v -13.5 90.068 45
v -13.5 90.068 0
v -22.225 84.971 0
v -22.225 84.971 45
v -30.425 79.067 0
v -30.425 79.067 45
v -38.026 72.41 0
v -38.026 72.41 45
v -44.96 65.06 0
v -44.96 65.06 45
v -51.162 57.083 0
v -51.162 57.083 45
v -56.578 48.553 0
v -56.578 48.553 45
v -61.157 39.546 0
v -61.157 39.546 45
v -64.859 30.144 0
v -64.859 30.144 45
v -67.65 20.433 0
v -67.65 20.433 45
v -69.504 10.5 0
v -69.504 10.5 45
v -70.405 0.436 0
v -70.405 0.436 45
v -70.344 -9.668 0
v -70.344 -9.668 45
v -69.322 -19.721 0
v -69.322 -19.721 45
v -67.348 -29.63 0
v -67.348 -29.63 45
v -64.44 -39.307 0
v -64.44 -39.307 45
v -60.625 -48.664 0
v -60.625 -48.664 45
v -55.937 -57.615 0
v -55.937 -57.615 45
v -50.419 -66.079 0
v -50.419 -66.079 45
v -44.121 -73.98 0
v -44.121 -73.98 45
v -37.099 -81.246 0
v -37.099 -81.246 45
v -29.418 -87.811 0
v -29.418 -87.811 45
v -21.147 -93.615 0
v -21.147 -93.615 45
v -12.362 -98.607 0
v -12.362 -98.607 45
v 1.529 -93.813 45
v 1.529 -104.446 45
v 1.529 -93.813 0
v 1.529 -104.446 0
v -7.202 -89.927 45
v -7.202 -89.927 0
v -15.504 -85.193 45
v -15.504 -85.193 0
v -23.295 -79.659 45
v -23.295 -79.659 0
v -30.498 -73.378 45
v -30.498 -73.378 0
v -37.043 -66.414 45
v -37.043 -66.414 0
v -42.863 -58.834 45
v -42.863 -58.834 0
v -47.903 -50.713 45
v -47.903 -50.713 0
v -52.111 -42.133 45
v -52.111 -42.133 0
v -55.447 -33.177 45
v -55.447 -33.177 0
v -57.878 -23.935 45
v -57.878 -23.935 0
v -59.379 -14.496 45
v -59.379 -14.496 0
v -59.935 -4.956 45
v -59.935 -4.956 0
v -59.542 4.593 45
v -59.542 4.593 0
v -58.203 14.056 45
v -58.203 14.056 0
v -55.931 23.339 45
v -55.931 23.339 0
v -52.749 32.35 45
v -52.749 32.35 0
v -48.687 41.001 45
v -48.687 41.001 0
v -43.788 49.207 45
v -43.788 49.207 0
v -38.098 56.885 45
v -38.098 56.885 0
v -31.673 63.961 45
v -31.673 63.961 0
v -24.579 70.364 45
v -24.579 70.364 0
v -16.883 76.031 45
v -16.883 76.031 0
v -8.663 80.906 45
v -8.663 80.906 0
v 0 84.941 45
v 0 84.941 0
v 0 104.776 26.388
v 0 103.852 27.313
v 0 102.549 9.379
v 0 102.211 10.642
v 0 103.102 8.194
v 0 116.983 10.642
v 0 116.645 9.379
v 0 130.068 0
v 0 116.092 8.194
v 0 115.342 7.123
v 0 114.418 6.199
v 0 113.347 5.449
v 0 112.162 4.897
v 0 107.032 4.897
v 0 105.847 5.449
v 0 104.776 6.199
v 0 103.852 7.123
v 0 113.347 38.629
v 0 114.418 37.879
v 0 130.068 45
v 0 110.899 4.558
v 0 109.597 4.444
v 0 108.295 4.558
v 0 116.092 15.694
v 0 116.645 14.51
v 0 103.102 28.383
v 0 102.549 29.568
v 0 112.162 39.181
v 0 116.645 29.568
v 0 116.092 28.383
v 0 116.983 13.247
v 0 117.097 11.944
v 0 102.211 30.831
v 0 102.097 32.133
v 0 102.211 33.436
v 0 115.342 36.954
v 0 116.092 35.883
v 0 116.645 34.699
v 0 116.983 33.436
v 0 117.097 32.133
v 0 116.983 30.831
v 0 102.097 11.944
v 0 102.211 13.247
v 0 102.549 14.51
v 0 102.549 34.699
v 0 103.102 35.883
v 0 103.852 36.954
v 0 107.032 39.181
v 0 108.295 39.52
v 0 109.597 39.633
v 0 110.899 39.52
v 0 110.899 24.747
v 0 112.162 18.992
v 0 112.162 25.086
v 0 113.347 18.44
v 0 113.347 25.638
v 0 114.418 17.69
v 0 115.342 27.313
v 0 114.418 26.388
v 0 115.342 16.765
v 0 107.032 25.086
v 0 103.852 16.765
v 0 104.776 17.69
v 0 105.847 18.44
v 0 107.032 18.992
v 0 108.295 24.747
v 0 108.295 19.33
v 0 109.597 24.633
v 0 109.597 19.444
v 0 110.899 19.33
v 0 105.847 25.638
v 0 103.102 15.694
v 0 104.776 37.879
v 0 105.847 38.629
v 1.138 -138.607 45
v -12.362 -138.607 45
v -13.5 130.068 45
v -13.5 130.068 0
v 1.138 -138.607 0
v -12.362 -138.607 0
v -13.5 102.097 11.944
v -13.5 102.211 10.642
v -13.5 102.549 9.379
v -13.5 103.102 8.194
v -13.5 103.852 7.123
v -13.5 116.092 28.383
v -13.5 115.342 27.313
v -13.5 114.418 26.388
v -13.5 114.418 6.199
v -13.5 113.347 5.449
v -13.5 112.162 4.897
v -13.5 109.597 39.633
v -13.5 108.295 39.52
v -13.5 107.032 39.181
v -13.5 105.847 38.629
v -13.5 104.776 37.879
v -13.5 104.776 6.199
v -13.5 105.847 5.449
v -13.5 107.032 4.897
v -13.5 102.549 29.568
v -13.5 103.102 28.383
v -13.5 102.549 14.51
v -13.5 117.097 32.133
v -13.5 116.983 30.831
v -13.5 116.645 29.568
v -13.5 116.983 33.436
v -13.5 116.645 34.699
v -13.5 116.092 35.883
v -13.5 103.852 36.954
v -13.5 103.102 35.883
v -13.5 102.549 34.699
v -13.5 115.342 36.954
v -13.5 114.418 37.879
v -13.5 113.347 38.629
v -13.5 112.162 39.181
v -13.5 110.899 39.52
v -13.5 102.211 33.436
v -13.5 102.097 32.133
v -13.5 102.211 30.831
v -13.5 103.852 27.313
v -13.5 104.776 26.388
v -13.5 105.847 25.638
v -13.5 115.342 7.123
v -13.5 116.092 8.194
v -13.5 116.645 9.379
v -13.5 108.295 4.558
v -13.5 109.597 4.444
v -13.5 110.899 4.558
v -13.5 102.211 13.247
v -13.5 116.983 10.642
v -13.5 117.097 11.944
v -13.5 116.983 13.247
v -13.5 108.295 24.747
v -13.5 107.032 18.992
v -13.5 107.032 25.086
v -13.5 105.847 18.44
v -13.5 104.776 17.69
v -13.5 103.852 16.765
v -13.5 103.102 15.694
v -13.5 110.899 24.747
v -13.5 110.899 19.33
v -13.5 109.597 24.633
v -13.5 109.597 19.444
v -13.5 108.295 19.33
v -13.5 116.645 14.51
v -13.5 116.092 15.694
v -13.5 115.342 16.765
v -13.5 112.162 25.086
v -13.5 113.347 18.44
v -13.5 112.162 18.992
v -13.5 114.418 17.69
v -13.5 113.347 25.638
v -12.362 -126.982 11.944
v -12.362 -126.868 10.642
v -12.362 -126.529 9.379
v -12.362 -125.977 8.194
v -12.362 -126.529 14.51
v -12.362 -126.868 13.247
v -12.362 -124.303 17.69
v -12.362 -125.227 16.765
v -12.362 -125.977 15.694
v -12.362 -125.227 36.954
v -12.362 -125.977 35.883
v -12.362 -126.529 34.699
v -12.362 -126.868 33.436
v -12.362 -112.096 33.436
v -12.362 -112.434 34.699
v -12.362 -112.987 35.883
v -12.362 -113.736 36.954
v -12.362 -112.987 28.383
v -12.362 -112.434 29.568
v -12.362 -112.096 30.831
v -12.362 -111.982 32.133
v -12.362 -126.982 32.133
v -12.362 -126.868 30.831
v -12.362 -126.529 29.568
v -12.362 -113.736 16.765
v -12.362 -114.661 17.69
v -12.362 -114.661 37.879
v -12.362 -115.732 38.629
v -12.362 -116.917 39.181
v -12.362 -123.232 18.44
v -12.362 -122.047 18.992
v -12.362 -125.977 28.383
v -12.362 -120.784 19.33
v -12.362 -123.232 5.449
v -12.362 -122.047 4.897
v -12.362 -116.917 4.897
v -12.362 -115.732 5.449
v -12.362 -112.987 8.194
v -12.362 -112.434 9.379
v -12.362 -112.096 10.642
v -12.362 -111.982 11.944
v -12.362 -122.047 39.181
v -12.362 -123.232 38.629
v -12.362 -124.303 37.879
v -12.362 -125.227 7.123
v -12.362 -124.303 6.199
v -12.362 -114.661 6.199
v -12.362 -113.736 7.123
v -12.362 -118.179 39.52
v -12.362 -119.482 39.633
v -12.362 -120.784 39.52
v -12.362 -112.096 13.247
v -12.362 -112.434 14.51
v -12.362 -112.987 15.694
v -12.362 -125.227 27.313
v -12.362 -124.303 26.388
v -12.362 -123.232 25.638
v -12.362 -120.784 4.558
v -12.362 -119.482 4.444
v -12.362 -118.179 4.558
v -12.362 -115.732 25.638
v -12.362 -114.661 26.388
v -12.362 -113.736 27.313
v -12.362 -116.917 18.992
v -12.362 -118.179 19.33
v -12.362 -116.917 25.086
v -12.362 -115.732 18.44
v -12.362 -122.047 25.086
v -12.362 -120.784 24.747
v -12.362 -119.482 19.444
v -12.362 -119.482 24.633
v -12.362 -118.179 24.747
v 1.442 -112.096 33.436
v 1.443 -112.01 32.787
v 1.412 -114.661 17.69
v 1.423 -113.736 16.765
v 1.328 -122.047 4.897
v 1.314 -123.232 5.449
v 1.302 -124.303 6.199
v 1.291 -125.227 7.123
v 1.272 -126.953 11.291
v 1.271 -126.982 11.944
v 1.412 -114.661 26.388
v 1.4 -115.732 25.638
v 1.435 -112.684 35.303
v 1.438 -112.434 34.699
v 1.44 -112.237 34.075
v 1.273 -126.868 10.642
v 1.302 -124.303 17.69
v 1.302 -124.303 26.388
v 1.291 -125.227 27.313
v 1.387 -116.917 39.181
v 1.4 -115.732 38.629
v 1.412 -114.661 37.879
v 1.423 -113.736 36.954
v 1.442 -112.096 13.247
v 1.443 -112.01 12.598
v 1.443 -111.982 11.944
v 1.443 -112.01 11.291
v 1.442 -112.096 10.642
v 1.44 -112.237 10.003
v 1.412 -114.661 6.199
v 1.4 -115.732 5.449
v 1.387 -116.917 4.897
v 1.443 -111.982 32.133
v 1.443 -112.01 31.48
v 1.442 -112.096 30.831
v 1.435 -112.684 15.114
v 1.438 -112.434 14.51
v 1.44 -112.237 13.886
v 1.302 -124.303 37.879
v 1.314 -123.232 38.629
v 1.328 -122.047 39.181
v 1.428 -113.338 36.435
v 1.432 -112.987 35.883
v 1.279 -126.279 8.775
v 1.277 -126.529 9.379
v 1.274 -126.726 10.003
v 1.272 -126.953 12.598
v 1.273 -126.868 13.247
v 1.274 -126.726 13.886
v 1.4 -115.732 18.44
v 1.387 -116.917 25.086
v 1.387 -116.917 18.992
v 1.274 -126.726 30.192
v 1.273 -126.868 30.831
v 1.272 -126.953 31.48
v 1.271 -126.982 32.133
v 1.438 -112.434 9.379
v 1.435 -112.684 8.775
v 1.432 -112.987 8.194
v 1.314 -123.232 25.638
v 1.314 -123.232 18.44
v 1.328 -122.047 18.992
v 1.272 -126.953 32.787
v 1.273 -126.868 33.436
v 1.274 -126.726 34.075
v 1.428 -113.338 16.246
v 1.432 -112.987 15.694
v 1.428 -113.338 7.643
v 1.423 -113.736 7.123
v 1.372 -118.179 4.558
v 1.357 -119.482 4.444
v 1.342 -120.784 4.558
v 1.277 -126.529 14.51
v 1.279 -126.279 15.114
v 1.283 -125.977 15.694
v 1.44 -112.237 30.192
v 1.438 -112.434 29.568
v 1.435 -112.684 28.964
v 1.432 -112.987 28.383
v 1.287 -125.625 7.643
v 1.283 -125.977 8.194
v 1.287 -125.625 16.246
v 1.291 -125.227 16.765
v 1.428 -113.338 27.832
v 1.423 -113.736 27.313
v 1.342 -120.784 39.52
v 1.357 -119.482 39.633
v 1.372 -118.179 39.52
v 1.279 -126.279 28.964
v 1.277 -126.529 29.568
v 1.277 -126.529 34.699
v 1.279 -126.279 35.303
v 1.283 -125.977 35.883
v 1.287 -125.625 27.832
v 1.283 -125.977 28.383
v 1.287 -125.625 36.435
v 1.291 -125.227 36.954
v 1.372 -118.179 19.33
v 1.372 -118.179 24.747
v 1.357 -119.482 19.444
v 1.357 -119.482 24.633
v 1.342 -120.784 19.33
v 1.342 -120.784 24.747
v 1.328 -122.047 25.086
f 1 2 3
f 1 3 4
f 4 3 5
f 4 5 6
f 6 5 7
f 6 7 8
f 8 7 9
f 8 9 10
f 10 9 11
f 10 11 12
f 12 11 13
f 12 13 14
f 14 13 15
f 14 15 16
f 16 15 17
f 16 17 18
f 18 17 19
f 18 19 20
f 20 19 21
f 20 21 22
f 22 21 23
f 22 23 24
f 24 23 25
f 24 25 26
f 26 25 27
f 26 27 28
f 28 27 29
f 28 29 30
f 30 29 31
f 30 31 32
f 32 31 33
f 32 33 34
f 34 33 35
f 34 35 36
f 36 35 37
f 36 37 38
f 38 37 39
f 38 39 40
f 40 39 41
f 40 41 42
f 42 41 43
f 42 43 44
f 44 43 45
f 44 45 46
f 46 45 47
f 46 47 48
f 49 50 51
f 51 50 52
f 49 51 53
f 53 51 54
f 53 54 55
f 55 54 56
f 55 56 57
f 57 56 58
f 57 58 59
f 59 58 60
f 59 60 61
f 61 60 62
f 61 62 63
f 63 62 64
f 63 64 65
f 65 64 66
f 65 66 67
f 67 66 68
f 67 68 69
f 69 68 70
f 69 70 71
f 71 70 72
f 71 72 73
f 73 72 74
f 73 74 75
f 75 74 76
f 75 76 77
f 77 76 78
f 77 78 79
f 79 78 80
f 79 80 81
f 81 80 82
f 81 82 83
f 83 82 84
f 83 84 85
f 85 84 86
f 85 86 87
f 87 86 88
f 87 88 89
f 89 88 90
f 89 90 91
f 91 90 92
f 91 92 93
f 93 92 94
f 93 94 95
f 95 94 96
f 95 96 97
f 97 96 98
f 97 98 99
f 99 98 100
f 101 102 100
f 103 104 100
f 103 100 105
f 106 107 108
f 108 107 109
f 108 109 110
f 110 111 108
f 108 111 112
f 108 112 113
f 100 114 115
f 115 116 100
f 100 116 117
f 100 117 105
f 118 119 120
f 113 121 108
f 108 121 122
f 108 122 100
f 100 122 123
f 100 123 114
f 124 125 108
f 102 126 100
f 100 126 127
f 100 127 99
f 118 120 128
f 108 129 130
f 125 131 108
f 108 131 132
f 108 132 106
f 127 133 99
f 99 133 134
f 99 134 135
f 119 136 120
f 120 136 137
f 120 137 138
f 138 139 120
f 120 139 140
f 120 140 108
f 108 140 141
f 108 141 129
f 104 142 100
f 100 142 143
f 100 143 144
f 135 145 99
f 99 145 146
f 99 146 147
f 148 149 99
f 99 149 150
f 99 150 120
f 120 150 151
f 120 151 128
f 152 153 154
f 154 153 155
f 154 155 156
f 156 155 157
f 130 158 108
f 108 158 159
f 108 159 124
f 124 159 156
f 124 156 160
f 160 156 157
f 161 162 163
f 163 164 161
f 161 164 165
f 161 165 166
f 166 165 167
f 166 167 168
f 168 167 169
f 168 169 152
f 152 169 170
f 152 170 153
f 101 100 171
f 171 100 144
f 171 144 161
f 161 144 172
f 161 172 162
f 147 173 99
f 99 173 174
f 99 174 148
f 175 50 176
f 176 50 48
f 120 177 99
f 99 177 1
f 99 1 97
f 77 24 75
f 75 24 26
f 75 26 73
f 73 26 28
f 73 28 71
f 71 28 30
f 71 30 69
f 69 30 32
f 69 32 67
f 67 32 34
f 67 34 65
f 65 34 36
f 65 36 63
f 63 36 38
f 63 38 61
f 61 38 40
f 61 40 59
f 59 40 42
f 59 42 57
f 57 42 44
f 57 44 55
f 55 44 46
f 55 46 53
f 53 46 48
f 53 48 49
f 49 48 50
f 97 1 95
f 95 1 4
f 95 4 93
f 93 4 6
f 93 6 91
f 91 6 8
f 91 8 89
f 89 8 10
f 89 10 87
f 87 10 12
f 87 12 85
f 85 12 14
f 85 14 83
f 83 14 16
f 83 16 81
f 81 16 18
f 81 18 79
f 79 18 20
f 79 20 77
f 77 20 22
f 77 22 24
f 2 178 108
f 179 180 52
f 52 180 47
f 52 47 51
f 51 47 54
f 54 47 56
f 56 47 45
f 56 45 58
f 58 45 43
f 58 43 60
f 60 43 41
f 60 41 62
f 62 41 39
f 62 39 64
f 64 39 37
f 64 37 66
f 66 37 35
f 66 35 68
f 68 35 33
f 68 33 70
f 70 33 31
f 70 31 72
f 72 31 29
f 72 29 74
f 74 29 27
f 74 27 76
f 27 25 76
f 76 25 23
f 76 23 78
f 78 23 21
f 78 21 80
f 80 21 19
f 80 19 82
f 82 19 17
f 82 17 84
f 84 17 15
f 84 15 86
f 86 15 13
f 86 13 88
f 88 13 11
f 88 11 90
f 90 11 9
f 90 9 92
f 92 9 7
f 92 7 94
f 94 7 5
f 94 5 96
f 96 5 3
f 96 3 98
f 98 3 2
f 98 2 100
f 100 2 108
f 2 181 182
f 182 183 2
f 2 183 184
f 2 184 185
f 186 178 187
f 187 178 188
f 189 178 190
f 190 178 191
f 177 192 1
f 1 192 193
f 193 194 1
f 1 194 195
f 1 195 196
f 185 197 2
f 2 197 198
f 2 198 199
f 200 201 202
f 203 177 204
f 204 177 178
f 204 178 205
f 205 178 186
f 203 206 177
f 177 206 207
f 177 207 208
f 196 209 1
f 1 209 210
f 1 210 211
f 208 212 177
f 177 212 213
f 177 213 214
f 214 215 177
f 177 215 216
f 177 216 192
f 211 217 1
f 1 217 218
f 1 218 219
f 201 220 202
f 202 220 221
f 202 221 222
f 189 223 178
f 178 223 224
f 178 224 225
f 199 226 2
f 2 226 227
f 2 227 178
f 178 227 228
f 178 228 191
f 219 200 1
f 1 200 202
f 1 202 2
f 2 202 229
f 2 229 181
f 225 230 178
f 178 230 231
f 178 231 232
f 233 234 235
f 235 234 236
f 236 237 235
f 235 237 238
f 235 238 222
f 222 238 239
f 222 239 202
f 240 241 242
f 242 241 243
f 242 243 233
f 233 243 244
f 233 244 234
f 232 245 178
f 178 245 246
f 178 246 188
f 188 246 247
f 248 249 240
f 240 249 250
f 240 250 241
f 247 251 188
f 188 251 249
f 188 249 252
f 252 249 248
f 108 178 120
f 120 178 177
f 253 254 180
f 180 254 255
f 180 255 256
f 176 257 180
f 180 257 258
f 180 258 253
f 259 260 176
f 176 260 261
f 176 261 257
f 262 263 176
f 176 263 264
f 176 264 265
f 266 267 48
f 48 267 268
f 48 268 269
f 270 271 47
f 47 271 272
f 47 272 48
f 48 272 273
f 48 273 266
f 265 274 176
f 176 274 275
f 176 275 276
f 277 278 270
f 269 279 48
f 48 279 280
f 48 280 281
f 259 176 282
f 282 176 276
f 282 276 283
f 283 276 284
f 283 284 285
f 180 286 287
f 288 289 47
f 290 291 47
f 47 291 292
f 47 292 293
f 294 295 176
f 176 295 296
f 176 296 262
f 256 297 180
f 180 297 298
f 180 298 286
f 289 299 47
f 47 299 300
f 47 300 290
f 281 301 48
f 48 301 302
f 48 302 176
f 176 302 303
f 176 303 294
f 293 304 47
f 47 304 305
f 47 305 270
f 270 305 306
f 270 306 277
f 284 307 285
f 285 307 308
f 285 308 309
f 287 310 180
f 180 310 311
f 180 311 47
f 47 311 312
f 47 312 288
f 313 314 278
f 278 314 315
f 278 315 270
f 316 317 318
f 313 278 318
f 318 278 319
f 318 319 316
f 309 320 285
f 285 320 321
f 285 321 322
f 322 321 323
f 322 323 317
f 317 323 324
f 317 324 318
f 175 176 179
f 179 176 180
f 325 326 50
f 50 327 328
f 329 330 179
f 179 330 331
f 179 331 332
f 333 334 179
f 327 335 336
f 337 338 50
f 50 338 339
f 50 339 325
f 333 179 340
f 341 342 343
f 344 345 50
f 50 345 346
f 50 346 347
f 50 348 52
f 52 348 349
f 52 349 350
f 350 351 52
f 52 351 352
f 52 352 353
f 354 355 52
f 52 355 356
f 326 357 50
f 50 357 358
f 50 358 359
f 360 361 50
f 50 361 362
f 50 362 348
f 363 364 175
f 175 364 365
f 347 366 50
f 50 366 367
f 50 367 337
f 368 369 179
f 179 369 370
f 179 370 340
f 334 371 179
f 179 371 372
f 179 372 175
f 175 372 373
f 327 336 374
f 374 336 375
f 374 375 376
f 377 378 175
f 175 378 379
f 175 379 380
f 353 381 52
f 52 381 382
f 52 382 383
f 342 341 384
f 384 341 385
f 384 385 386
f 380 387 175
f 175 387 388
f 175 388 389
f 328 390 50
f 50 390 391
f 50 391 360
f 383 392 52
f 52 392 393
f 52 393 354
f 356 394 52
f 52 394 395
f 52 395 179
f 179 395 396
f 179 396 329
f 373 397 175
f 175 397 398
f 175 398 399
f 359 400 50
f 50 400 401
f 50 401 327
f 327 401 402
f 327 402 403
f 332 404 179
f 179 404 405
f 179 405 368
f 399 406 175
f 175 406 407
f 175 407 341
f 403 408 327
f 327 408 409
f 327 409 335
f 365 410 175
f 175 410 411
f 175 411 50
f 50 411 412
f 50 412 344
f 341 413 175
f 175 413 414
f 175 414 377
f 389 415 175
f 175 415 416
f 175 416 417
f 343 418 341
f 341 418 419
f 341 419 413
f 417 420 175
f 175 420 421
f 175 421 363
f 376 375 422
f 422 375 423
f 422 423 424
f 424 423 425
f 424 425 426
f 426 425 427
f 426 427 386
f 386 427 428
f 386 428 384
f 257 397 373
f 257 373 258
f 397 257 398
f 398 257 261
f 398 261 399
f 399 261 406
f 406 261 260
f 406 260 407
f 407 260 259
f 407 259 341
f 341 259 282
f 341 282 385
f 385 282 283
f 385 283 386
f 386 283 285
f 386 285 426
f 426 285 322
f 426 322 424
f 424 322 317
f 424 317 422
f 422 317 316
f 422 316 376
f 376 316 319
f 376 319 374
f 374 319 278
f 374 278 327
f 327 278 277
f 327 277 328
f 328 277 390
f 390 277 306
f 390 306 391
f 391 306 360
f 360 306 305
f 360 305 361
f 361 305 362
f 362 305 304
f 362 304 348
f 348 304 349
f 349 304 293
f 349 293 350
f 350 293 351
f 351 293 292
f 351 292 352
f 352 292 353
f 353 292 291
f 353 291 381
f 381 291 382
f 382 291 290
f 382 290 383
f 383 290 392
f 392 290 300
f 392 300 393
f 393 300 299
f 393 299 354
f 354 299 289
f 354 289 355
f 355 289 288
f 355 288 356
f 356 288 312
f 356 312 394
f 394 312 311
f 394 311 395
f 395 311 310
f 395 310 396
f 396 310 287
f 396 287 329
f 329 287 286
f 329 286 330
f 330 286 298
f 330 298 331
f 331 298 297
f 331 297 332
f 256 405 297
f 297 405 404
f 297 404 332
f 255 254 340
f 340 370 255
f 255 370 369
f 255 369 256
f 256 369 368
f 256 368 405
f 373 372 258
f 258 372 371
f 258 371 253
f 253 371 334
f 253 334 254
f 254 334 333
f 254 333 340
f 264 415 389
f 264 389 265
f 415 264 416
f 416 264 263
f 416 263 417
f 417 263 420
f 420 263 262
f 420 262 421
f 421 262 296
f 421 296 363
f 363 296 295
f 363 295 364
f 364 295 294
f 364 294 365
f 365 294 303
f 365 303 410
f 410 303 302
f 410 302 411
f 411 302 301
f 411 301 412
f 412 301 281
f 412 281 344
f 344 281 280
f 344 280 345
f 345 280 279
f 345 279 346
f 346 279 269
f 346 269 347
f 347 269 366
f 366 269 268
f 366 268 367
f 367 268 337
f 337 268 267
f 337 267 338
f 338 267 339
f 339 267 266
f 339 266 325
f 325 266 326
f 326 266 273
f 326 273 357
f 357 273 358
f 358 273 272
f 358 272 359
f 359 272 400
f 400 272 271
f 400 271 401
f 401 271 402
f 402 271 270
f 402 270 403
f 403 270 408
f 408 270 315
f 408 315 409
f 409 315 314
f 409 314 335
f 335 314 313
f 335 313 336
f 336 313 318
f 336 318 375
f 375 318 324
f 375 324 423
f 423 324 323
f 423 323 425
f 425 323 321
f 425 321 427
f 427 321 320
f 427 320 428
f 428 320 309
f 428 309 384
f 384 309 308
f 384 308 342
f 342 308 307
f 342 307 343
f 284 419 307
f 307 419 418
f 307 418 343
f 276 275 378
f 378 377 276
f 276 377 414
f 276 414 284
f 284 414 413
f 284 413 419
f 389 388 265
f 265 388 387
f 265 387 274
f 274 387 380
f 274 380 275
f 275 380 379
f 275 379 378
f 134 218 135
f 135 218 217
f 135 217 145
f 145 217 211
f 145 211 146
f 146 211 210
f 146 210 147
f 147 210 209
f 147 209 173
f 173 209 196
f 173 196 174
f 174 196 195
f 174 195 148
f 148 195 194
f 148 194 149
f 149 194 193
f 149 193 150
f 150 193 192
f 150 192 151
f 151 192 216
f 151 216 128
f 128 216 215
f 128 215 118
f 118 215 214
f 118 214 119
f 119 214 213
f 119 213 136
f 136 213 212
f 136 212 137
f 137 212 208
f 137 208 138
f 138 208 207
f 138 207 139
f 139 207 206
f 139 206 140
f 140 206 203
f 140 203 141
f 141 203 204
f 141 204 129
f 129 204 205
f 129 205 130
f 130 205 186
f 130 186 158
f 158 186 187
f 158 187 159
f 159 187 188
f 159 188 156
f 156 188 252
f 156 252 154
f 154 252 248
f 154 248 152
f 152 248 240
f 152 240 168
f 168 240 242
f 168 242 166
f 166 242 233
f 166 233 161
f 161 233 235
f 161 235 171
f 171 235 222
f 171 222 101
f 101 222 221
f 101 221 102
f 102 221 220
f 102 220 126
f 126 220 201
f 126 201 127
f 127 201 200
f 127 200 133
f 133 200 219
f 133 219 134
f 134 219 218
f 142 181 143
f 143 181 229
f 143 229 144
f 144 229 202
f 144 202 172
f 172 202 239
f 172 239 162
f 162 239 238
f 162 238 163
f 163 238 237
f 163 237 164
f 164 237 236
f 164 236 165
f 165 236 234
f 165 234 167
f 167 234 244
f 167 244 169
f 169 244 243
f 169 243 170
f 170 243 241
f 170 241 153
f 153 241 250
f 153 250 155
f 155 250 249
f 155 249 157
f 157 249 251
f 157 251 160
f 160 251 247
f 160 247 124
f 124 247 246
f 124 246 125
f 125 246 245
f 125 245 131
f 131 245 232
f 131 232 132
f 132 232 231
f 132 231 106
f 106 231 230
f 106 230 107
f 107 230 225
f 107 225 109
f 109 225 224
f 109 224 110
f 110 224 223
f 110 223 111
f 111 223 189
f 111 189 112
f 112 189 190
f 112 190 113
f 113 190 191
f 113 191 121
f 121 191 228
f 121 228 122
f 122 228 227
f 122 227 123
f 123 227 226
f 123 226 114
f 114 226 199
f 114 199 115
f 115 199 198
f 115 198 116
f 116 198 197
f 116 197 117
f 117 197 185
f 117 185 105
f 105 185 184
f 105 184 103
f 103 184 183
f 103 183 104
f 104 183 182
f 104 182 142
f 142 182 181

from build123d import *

# Parameters (mm, degrees)
BOSS_EXTRUDE1_DEPTH = 45
BOSS_EXTRUDE4_DEPTH = 45
BOSS_EXTRUDE5_DEPTH = 45
SKETCH9_R           = 7.5
CUT_EXTRUDE1_DEPTH  = 42.5


with BuildPart() as part:
    # Sketch3 → Boss-Extrude1 (new body)
    with BuildSketch(Plane(origin=(0, 0, 0), x_dir=(0, 1, 0), z_dir=(0, 0, 1))):
        with BuildLine():
            Line((-104.44581982, -1.529393099), (-93.813362353, -1.529393099))
            ThreePointArc((-93.813362353, -1.529393099), (-4.955593322, 59.935089755), (84.940851468, 0))
            Line((84.940851468, 0), (95.96089631, 0))
            ThreePointArc((95.96089631, 0), (-4.786263807, 70.493362274), (-104.44581982, -1.529393099))
        make_face()
    extrude(amount=BOSS_EXTRUDE1_DEPTH)

    # Sketch7 → Boss-Extrude4 (add)
    with BuildSketch(Plane(origin=(0, 95.96089631, 45), x_dir=(1, 0, 0), z_dir=(0, 0, -1))):
        Polygon((-13.5, 5.893061873), (-13.5, -34.106938127), (0, -34.106938127), (0, 0), align=None)
    extrude(amount=BOSS_EXTRUDE4_DEPTH)

    # Sketch8 → Boss-Extrude5 (add)
    with BuildSketch(Plane(origin=(1.529393099, -104.44581982, 0), x_dir=(1, 0, 0), z_dir=(0, 0, -1))):
        Polygon((-13.891184433, -5.839173076), (-13.891184433, 34.160826924), (-0.391184433, 34.160826924), (0, 0), align=None)
    extrude(amount=-BOSS_EXTRUDE5_DEPTH)

    # Sketch9 → Cut-Extrude1 (cut, symmetric)
    with BuildSketch(Plane(origin=(-12.361791334, 0, 0), x_dir=(0, -1, 0), z_dir=(-1, 0, 0))):
        with Locations((119.481769574, 11.944393397)):
            Circle(SKETCH9_R)
        with Locations((119.481769574, 32.133475773)):
            Circle(SKETCH9_R)
        with Locations((-109.597018442, 11.944393397)):
            Circle(SKETCH9_R)
        with Locations((-109.597018442, 32.133475773)):
            Circle(SKETCH9_R)
    extrude(amount=CUT_EXTRUDE1_DEPTH, both=True, mode=Mode.SUBTRACT)


solid = part.part
